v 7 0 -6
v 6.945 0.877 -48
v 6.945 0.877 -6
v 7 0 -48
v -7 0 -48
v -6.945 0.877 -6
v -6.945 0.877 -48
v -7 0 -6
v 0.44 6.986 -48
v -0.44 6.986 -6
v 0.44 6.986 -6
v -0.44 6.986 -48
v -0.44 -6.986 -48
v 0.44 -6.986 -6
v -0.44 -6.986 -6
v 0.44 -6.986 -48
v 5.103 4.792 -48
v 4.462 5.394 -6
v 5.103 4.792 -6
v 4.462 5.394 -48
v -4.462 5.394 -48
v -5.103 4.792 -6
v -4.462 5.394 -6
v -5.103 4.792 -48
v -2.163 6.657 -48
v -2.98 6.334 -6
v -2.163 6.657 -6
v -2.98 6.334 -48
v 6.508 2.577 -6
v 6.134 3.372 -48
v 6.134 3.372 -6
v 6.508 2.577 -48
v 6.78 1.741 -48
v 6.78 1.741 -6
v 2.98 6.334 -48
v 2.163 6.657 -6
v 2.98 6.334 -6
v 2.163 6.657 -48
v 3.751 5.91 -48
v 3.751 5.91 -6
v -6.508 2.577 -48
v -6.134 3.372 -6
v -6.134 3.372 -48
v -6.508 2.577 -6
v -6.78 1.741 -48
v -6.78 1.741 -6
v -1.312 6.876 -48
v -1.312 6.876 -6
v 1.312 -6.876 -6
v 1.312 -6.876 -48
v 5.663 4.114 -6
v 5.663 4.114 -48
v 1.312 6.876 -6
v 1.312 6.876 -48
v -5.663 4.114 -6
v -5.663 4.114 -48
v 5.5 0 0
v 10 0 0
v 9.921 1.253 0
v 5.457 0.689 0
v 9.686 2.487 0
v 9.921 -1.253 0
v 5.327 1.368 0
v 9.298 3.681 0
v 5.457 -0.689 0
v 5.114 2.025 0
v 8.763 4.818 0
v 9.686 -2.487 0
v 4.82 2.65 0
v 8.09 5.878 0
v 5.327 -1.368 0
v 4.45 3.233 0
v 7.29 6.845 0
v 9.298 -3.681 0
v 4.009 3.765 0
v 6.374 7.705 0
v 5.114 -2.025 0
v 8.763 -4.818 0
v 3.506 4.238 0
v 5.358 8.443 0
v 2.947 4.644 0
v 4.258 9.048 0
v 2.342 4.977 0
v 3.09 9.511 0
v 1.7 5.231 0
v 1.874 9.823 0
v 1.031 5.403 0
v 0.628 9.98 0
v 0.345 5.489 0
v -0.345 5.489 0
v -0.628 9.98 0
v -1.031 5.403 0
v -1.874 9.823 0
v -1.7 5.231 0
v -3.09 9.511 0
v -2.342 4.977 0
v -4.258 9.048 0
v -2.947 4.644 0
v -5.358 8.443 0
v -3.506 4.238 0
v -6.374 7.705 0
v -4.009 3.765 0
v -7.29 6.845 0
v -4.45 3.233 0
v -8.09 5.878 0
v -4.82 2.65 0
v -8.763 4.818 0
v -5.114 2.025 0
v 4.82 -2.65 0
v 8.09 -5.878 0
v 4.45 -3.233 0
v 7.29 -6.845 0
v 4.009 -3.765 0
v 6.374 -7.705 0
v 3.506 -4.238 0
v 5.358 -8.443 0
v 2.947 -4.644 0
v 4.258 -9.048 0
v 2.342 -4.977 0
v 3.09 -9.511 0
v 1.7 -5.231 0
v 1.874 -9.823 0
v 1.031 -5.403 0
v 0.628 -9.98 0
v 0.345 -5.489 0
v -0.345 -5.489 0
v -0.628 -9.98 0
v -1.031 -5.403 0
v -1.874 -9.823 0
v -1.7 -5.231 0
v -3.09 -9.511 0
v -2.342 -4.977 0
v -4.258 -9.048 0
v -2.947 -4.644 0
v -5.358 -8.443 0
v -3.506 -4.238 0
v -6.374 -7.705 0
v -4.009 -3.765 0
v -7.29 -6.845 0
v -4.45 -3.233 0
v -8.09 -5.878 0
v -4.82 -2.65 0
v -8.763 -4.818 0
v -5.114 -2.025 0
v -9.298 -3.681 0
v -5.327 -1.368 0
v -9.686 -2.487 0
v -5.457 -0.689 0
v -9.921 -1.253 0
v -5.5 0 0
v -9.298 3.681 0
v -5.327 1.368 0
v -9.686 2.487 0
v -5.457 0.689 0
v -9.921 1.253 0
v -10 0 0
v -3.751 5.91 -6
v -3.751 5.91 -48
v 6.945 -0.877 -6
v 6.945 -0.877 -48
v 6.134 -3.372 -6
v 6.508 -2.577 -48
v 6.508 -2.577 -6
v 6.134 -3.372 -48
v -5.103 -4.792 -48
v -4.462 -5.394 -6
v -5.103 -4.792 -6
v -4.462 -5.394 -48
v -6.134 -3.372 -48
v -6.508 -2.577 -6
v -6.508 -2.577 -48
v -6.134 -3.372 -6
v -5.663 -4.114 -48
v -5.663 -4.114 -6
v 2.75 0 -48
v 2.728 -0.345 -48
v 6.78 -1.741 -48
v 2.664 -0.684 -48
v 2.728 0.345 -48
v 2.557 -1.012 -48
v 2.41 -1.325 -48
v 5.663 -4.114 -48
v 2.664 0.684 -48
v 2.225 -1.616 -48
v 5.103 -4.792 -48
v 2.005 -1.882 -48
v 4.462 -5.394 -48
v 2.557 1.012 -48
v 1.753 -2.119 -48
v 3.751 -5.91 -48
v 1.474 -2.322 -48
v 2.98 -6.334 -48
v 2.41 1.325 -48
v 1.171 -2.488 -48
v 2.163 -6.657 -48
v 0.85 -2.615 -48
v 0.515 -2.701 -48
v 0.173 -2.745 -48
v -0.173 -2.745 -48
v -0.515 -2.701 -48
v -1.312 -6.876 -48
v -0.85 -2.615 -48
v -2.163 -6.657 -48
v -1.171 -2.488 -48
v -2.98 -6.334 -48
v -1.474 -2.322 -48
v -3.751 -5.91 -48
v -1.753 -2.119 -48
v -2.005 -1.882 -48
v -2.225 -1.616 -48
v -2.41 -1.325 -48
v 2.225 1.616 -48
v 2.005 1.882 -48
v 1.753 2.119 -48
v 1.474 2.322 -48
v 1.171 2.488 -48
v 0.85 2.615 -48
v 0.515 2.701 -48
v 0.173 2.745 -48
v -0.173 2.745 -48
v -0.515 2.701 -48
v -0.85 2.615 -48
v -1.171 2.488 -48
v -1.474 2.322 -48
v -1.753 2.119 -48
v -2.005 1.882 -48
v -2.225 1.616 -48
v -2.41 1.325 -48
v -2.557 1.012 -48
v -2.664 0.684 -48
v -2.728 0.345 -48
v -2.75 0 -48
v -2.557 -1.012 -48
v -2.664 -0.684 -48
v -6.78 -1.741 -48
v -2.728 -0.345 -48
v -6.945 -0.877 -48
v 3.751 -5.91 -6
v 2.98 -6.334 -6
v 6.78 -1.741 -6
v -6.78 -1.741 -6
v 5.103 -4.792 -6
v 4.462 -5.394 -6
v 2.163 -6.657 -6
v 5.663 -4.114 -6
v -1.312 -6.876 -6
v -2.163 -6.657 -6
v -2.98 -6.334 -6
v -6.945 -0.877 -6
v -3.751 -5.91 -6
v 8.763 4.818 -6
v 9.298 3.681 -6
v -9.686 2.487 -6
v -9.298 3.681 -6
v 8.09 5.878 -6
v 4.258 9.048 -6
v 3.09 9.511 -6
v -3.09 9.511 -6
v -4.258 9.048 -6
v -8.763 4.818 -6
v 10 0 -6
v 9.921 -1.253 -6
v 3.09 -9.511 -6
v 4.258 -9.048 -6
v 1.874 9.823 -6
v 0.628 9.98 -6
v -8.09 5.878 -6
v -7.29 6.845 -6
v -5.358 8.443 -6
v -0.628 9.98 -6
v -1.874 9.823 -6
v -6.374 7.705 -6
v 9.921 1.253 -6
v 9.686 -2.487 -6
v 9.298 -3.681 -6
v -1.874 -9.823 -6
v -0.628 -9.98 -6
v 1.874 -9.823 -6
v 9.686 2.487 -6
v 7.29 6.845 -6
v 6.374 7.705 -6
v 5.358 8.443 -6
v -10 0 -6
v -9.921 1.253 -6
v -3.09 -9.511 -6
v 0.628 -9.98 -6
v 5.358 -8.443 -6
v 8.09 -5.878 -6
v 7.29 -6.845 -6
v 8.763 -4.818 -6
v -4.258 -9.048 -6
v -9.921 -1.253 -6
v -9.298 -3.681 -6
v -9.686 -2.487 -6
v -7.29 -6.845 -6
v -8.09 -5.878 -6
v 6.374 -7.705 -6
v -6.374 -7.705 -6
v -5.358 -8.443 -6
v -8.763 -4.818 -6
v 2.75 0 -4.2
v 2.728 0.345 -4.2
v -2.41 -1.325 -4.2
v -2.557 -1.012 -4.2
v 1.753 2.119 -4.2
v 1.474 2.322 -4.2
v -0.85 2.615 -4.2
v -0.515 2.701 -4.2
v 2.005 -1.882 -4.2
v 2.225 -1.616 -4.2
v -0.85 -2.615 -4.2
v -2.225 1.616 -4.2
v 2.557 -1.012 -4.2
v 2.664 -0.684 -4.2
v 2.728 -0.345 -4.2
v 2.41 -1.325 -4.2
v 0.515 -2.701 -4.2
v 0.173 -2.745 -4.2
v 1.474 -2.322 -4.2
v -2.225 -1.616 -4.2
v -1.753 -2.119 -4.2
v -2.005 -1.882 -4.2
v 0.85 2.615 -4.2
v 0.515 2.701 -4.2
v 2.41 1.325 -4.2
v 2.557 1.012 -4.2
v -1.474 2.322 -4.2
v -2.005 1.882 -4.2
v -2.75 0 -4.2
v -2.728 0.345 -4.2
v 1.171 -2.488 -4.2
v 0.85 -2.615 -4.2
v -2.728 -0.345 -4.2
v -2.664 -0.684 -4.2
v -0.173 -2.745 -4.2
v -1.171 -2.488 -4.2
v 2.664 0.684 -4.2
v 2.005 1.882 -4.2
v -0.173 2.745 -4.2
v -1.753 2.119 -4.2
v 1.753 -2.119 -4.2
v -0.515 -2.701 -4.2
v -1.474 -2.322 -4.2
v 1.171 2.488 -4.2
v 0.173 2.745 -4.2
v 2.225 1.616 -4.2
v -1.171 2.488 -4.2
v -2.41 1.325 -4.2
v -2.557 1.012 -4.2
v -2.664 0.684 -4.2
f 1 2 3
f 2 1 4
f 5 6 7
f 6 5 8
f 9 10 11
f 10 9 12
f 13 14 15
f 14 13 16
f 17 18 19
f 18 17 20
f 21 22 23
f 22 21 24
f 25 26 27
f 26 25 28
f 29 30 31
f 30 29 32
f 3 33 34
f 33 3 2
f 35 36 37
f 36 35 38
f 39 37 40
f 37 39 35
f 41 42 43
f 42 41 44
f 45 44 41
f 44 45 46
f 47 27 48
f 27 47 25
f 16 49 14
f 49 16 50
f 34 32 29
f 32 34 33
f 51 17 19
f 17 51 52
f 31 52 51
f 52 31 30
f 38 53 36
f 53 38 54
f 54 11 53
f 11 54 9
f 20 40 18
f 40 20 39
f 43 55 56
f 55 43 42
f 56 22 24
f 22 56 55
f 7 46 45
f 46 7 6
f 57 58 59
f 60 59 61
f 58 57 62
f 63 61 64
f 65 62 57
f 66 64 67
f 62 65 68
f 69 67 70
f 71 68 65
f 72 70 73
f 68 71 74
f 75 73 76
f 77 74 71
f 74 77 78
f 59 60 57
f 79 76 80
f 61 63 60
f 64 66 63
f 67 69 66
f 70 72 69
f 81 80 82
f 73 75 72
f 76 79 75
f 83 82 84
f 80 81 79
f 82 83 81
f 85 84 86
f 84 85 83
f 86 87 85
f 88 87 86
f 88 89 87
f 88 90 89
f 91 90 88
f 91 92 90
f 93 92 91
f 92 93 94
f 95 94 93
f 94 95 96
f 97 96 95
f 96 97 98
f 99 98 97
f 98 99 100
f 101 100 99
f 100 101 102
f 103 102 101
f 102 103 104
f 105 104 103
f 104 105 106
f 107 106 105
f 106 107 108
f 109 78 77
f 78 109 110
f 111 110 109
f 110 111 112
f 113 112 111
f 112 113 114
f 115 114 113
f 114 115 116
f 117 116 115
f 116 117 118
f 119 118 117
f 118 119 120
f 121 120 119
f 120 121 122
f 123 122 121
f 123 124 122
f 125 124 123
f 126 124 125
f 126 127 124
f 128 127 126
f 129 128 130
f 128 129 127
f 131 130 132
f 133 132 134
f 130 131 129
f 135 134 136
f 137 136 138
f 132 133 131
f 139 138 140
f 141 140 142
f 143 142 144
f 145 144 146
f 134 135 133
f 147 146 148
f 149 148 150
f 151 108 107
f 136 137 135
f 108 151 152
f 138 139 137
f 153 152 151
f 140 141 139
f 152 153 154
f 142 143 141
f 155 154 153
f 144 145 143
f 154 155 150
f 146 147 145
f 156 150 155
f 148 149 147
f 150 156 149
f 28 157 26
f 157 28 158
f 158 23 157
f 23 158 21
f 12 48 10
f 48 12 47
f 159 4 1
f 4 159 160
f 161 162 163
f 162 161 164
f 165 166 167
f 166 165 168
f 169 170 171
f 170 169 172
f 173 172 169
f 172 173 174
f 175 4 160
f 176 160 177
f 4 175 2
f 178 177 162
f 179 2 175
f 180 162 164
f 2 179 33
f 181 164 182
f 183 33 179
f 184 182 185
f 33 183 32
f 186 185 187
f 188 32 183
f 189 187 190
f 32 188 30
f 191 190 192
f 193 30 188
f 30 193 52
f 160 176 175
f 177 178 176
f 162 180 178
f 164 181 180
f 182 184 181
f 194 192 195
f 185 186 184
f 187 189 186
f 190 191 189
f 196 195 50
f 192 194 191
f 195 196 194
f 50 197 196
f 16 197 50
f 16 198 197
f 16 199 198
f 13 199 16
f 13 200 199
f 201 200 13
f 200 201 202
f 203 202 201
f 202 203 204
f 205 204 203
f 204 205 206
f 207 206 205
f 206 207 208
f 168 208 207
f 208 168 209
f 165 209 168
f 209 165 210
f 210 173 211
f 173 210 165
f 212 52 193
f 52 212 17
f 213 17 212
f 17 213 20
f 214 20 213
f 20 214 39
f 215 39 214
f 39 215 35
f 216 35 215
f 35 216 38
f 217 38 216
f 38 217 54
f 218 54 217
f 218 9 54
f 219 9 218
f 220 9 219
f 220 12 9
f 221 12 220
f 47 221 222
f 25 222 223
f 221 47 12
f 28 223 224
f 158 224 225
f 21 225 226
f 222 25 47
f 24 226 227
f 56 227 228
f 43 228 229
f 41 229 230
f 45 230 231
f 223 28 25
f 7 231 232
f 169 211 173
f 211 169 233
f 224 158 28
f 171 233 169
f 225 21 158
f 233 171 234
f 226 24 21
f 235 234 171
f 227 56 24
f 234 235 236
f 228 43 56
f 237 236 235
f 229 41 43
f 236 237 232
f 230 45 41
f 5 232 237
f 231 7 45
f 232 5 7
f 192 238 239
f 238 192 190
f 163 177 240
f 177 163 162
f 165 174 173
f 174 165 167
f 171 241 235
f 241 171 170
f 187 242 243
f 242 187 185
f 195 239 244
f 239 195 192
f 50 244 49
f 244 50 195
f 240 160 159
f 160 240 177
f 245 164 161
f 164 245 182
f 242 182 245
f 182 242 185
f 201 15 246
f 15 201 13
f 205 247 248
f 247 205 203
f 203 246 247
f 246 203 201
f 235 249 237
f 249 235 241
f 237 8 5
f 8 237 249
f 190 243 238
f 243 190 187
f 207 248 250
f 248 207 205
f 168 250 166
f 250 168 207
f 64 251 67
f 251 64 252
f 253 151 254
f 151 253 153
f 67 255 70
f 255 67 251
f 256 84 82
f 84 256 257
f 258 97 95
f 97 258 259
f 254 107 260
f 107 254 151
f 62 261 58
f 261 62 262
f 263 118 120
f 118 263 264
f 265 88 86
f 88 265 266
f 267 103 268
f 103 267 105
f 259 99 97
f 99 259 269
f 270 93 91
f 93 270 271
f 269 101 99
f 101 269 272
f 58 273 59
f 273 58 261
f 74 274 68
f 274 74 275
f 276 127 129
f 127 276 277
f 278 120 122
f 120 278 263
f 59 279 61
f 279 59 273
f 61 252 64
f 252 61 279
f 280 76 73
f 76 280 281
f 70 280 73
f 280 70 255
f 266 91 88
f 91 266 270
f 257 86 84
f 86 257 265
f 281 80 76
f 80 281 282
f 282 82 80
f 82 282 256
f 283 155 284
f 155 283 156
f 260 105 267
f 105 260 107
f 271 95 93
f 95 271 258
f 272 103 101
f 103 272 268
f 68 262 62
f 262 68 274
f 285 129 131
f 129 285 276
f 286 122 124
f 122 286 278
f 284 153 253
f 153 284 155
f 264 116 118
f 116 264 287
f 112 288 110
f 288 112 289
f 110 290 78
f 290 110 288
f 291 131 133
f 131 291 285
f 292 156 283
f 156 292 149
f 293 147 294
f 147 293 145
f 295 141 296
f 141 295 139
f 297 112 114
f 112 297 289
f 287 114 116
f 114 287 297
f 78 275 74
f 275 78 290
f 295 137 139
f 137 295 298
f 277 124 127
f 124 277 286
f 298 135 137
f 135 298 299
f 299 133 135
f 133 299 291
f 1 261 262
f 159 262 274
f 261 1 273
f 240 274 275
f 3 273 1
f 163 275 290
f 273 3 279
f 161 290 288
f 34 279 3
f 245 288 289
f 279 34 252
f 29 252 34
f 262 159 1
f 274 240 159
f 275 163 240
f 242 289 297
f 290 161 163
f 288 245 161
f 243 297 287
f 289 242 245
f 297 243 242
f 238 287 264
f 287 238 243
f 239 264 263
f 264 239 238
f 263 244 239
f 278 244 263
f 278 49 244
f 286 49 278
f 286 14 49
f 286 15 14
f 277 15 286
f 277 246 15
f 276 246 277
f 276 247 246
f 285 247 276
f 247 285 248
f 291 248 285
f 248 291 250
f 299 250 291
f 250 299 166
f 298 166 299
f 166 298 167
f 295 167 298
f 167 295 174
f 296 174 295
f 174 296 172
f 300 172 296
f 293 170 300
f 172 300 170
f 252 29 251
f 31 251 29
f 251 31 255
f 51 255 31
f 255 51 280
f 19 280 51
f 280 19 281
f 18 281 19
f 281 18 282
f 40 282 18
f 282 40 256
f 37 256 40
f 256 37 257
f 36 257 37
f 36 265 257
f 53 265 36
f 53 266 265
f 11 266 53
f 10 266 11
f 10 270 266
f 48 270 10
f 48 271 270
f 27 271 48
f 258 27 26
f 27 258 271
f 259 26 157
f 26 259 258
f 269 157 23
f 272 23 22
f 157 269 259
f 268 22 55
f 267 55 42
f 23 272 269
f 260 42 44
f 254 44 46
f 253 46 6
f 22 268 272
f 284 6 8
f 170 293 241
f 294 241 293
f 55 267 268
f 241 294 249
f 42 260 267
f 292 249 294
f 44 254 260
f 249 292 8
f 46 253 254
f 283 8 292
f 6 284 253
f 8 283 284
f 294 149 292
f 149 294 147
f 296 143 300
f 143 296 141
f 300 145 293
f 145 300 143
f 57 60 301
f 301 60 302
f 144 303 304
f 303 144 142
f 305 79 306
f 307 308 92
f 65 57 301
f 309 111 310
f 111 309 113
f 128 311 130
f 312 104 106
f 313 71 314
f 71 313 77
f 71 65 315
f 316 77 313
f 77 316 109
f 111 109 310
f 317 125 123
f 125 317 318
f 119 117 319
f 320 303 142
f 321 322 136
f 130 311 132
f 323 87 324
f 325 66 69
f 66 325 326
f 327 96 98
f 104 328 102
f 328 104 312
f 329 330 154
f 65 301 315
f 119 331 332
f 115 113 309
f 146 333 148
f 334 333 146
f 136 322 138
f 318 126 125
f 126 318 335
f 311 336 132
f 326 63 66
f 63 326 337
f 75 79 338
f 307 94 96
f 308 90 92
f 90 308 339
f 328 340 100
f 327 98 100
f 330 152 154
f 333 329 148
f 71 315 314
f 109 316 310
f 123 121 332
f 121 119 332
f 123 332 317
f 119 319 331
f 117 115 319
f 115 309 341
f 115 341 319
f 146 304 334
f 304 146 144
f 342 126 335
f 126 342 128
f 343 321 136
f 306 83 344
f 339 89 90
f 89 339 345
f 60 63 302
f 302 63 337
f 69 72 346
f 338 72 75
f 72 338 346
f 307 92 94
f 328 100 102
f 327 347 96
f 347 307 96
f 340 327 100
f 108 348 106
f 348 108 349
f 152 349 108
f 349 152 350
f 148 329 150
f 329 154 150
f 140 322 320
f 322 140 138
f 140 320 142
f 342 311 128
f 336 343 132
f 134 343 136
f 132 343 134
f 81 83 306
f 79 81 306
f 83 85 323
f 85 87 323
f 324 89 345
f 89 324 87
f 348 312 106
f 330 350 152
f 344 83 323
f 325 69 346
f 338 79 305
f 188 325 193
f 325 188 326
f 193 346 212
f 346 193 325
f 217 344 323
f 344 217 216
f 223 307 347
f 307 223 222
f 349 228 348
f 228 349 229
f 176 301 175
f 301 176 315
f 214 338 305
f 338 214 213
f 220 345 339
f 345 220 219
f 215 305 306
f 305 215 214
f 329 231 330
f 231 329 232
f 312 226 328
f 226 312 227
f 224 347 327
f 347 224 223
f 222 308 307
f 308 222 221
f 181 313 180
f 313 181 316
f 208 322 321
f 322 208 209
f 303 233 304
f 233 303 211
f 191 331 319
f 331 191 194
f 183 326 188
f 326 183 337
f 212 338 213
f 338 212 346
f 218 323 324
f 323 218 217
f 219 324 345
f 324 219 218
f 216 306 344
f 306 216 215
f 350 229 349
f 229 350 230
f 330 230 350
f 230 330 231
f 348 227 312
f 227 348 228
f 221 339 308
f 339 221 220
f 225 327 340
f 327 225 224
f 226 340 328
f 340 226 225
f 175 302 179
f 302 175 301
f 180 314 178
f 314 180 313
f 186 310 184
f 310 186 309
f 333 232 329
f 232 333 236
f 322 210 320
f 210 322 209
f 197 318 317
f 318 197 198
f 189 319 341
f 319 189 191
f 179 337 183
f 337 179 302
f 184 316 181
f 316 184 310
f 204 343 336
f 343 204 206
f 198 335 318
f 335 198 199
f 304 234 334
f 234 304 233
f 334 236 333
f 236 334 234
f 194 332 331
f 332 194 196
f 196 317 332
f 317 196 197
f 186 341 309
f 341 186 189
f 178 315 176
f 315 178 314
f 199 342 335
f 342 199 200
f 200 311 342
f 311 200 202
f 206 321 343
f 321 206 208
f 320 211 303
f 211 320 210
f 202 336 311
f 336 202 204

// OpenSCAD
$fn = 50;


difference() {
	union() {
		translate(v = [0, 0, -48.0000000000]) {
			cylinder(h = 48, r = 7.0000000000);
		}
		translate(v = [0, 0, -6.0000000000]) {
			cylinder(h = 6, r = 10.0000000000);
		}
	}
	union() {
		translate(v = [0, 0, 0]) {
			rotate(a = [0, 0, 0]) {
				difference() {
					union() {
						#translate(v = [0, 0, -48.0000000000]) {
							cylinder(h = 48, r = 2.2500000000);
						}
						#translate(v = [0, 0, -4.2000000000]) {
							cylinder(h = 4.2000000000, r1 = 2.7500000000, r2 = 5.5000000000);
						}
						#translate(v = [0, 0, -48.0000000000]) {
							cylinder(h = 48, r = 2.7500000000);
						}
						#translate(v = [0, 0, -48.0000000000]) {
							cylinder(h = 48, r = 2.2500000000);
						}
					}
					union();
				}
			}
		}
	}
}
